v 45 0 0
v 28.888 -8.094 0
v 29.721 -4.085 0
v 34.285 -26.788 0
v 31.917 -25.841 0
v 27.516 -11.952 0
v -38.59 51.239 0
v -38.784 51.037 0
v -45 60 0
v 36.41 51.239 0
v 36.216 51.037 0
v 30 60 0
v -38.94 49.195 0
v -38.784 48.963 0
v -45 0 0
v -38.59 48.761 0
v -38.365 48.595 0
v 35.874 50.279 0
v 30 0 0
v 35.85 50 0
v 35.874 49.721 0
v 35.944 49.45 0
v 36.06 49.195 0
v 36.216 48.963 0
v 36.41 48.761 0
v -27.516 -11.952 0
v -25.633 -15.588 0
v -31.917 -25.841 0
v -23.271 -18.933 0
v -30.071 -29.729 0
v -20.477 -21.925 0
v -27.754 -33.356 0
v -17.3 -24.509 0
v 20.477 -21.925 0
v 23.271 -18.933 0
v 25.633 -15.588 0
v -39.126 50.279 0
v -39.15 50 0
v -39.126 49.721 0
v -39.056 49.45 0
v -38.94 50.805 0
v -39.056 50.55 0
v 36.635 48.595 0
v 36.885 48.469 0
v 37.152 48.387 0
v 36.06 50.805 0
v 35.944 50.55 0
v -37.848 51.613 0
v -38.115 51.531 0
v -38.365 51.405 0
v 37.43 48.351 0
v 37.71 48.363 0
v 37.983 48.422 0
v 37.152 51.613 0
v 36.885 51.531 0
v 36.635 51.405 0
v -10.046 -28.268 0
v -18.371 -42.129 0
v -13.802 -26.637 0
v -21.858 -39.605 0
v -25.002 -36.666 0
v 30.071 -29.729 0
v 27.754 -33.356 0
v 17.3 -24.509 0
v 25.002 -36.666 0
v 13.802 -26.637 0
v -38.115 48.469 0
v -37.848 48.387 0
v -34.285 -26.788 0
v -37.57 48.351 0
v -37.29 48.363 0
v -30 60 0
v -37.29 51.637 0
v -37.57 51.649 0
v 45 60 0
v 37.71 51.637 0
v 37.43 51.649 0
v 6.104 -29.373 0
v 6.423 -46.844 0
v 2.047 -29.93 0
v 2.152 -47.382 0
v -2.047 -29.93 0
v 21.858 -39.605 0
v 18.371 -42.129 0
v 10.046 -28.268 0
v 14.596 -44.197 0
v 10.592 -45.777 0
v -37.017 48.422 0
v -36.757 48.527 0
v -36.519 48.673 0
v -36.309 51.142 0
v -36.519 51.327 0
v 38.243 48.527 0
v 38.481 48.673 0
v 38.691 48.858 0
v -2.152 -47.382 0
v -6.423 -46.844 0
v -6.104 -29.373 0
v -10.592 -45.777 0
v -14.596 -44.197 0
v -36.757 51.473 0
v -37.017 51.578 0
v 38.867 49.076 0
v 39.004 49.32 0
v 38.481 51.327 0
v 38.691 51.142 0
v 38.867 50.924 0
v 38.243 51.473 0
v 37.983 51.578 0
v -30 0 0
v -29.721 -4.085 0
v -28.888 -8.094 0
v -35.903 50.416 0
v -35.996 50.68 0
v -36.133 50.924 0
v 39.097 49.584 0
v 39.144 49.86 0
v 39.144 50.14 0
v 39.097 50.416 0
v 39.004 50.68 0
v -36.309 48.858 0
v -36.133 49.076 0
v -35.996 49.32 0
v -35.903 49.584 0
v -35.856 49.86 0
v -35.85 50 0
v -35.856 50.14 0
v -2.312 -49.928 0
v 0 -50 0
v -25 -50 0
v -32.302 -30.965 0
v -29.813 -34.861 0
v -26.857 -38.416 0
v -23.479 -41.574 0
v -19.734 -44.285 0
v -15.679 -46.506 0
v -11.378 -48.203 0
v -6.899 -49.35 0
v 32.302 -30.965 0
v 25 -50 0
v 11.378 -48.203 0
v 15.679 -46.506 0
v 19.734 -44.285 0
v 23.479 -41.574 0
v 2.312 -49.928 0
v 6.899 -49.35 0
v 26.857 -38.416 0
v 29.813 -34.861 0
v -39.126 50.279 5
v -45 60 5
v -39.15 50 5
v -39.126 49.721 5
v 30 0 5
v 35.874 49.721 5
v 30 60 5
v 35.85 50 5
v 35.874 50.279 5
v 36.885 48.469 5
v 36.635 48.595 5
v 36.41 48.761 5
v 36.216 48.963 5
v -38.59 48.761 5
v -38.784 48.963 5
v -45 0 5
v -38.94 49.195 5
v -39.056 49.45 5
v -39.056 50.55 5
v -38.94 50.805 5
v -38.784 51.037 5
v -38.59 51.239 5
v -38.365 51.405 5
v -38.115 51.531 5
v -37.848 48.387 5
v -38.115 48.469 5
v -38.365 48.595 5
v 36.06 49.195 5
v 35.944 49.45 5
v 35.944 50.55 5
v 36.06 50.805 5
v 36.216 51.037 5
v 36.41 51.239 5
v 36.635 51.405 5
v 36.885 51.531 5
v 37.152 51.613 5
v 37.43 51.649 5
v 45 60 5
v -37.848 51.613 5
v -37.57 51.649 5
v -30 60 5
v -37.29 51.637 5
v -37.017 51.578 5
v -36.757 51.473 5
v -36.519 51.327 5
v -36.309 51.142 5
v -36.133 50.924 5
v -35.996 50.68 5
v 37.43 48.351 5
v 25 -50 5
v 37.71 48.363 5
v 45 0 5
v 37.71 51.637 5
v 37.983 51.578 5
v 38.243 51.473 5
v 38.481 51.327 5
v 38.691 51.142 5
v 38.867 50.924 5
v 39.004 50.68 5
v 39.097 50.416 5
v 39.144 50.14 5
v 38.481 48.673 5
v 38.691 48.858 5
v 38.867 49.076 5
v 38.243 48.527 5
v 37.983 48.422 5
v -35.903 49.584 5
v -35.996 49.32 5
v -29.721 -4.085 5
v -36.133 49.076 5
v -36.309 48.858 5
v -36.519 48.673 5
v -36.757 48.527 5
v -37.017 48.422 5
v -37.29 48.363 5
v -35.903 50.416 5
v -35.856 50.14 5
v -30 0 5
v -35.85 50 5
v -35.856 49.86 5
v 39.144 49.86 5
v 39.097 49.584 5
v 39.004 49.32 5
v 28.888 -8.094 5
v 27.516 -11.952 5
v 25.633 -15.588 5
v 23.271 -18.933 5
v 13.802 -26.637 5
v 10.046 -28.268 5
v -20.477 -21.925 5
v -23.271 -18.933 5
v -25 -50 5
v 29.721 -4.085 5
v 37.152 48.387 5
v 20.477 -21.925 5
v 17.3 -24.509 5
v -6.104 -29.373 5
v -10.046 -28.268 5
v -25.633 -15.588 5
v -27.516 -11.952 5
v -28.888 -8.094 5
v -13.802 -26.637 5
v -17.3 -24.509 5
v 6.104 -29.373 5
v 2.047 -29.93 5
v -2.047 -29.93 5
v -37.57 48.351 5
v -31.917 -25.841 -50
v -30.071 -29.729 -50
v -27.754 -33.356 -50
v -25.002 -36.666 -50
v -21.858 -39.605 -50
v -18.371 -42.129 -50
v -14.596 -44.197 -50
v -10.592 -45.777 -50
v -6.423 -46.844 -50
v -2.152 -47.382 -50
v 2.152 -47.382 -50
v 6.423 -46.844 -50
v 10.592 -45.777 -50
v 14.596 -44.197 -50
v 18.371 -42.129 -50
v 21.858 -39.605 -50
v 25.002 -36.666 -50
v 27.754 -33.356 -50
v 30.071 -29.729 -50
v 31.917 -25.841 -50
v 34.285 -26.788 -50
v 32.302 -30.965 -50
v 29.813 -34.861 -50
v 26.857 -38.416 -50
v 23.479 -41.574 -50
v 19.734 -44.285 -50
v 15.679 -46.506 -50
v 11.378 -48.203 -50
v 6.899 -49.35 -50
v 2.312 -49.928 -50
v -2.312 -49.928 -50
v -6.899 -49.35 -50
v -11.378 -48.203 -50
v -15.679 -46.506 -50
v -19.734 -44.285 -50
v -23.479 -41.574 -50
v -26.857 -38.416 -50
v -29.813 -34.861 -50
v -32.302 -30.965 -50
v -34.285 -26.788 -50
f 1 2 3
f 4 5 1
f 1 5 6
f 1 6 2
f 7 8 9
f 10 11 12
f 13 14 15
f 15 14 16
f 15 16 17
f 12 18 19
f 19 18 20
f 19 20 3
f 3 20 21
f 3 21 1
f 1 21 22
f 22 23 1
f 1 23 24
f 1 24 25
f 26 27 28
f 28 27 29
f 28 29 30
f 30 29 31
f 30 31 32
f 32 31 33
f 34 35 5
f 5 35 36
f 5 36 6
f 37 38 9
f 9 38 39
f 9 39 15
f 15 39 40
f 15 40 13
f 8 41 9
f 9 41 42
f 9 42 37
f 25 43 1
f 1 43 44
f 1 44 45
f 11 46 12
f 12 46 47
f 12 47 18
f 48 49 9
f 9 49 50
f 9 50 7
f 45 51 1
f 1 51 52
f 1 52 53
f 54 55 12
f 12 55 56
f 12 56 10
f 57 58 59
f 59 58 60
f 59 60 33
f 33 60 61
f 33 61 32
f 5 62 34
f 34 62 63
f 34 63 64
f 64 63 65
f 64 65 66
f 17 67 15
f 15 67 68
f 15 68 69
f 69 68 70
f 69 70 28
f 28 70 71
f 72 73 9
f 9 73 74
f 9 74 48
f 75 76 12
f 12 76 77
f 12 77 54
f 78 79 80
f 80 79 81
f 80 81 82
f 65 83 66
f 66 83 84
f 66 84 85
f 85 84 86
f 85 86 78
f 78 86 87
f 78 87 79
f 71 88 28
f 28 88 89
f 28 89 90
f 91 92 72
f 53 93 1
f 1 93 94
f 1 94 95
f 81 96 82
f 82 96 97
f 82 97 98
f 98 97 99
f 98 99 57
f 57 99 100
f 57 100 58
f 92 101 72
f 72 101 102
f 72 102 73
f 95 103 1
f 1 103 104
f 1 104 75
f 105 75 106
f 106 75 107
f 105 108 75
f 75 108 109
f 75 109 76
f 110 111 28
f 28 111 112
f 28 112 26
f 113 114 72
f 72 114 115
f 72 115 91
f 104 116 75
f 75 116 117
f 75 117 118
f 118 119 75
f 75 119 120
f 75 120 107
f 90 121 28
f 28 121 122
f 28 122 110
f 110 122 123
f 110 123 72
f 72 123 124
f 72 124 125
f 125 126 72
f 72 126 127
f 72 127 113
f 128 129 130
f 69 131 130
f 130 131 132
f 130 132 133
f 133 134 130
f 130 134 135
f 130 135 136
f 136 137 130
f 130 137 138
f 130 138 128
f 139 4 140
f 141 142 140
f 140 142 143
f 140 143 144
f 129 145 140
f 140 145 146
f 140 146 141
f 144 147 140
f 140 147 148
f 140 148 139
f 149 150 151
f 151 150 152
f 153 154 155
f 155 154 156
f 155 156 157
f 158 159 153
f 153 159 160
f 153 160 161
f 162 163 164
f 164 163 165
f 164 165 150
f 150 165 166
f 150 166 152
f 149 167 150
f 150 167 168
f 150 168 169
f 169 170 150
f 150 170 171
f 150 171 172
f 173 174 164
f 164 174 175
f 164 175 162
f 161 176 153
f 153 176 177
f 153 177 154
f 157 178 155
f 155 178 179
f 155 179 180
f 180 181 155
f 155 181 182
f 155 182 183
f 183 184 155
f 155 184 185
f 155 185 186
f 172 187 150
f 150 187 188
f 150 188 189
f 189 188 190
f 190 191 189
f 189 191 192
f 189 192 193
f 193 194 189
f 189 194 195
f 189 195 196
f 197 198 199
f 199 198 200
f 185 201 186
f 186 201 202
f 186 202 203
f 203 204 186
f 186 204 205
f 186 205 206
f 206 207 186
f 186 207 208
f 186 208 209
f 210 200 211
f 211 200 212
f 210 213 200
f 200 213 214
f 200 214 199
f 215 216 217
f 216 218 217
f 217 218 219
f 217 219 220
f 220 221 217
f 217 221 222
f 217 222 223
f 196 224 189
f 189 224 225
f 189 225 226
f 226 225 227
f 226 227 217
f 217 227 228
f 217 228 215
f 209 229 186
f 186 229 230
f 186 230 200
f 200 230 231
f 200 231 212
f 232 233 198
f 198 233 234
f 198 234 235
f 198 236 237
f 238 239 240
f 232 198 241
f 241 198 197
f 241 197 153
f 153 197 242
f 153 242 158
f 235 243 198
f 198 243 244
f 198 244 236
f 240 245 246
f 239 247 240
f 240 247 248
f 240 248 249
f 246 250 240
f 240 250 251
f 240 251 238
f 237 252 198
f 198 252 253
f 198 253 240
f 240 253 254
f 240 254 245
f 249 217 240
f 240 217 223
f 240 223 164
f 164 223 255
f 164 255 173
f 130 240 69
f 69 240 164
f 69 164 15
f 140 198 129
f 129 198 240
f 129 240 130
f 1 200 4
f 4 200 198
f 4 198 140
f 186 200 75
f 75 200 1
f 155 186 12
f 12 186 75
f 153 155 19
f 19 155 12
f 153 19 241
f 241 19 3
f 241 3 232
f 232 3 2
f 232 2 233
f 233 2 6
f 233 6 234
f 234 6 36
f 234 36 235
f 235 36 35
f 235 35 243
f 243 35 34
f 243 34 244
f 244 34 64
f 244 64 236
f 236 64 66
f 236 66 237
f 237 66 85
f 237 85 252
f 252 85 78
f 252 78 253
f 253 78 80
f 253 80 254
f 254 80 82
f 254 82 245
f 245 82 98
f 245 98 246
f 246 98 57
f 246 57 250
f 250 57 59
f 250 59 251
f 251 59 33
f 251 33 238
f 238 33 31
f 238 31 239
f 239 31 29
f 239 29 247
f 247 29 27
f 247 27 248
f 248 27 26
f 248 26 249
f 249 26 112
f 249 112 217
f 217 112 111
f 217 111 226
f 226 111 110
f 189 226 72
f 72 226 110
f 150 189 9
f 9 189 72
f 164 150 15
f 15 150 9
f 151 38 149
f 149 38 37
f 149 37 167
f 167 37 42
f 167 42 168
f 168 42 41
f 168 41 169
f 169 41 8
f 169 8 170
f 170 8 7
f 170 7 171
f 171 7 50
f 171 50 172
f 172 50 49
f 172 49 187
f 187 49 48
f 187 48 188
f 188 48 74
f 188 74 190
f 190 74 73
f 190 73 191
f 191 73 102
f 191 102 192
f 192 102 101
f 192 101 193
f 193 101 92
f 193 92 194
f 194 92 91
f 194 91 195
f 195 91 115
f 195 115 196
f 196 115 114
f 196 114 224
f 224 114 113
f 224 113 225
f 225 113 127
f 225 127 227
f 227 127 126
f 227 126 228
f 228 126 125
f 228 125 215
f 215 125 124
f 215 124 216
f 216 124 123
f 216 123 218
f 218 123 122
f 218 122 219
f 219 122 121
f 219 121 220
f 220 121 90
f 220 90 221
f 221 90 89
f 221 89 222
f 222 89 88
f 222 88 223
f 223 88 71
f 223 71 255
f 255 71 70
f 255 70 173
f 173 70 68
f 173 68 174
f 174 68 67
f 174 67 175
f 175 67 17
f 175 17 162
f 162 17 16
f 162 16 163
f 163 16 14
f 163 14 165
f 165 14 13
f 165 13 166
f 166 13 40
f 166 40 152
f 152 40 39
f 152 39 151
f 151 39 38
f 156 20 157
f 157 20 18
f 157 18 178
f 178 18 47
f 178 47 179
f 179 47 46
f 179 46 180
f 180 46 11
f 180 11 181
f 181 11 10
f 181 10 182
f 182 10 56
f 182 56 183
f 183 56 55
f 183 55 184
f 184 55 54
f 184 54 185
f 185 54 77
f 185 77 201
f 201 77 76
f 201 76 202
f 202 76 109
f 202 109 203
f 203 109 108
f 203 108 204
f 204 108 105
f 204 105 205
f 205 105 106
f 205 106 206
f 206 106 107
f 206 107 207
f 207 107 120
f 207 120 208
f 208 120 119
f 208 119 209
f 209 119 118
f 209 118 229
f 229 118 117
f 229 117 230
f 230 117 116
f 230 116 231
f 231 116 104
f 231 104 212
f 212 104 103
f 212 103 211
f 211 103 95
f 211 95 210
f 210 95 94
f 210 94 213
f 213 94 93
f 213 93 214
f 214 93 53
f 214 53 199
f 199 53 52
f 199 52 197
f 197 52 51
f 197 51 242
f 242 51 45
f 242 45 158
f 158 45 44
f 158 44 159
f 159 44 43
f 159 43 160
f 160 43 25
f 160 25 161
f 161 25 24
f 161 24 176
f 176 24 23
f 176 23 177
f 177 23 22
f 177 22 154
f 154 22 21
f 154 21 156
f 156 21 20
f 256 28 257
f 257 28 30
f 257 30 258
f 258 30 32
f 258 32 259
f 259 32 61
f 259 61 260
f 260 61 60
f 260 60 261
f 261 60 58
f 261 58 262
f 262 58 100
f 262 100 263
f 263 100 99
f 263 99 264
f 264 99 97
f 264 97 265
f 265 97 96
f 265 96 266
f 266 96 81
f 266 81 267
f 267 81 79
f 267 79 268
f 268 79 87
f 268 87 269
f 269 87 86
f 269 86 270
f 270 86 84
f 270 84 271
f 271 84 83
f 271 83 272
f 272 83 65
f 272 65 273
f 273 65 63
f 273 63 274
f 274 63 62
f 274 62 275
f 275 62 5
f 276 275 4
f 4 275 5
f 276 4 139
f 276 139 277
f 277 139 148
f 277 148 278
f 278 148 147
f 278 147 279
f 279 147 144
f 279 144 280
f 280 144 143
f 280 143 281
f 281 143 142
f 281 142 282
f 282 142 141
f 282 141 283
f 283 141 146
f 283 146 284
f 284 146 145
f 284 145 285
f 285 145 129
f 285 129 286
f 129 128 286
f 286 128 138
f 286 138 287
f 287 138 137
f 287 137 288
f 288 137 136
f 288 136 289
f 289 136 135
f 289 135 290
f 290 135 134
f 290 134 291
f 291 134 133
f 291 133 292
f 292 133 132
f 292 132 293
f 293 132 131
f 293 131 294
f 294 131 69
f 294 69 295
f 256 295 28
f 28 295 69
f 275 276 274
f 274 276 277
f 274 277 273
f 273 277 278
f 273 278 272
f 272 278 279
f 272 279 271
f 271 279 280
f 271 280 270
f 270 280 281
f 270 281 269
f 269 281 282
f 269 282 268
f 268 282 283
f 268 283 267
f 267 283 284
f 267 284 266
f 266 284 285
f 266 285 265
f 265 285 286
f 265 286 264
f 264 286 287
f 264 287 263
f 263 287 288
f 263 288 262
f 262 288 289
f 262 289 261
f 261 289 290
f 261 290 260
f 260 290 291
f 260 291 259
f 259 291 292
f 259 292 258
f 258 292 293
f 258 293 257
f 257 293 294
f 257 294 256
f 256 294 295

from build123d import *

# Parameters (mm, degrees)
SKETCH_1_R      = 1.65
EXTRUDE_1_DEPTH = 5
EXTRUDE_2_DEPTH = 50


with BuildPart() as part:
    # 스케치1 → 보스-돌출1 (new body)
    with BuildSketch(Plane.XY):
        with BuildLine():
            Line((-25, -50), (25, -50))
            Line((25, -50), (45, 0))
            Line((45, 0), (45, 60))
            Line((45, 60), (30, 60))
            Line((30, 60), (30, 0))
            ThreePointArc((30, 0), (0, -30), (-30, 0))
            Line((-30, 0), (-30, 60))
            Line((-30, 60), (-45, 60))
            Line((-45, 60), (-45, 0))
            Line((-45, 0), (-25, -50))
        make_face()
        with Locations((-37.5, 50)):
            Circle(SKETCH_1_R, mode=Mode.SUBTRACT)
        with Locations(Location((37.5, 50, 0), (0, 0, 180))):
            Circle(SKETCH_1_R, mode=Mode.SUBTRACT)
    extrude(amount=EXTRUDE_1_DEPTH)

    # 스케치4 → 보스-돌출2 (add)
    with BuildSketch(Plane(origin=(0, 0, 0), x_dir=(-1, 0, 0), z_dir=(0, 0, -1))):
        with BuildLine():
            Line((-31.916553531, -25.840797377), (-34.284766909, -26.788082728))
            ThreePointArc((-34.284766909, -26.788082728), (0, -50), (34.284766909, -26.788082728))
            Line((34.284766909, -26.788082728), (31.916553531, -25.840797377))
            ThreePointArc((31.916553531, -25.840797377), (0, -47.449356133), (-31.916553531, -25.840797377))
        make_face()
    extrude(amount=EXTRUDE_2_DEPTH)


solid = part.part
